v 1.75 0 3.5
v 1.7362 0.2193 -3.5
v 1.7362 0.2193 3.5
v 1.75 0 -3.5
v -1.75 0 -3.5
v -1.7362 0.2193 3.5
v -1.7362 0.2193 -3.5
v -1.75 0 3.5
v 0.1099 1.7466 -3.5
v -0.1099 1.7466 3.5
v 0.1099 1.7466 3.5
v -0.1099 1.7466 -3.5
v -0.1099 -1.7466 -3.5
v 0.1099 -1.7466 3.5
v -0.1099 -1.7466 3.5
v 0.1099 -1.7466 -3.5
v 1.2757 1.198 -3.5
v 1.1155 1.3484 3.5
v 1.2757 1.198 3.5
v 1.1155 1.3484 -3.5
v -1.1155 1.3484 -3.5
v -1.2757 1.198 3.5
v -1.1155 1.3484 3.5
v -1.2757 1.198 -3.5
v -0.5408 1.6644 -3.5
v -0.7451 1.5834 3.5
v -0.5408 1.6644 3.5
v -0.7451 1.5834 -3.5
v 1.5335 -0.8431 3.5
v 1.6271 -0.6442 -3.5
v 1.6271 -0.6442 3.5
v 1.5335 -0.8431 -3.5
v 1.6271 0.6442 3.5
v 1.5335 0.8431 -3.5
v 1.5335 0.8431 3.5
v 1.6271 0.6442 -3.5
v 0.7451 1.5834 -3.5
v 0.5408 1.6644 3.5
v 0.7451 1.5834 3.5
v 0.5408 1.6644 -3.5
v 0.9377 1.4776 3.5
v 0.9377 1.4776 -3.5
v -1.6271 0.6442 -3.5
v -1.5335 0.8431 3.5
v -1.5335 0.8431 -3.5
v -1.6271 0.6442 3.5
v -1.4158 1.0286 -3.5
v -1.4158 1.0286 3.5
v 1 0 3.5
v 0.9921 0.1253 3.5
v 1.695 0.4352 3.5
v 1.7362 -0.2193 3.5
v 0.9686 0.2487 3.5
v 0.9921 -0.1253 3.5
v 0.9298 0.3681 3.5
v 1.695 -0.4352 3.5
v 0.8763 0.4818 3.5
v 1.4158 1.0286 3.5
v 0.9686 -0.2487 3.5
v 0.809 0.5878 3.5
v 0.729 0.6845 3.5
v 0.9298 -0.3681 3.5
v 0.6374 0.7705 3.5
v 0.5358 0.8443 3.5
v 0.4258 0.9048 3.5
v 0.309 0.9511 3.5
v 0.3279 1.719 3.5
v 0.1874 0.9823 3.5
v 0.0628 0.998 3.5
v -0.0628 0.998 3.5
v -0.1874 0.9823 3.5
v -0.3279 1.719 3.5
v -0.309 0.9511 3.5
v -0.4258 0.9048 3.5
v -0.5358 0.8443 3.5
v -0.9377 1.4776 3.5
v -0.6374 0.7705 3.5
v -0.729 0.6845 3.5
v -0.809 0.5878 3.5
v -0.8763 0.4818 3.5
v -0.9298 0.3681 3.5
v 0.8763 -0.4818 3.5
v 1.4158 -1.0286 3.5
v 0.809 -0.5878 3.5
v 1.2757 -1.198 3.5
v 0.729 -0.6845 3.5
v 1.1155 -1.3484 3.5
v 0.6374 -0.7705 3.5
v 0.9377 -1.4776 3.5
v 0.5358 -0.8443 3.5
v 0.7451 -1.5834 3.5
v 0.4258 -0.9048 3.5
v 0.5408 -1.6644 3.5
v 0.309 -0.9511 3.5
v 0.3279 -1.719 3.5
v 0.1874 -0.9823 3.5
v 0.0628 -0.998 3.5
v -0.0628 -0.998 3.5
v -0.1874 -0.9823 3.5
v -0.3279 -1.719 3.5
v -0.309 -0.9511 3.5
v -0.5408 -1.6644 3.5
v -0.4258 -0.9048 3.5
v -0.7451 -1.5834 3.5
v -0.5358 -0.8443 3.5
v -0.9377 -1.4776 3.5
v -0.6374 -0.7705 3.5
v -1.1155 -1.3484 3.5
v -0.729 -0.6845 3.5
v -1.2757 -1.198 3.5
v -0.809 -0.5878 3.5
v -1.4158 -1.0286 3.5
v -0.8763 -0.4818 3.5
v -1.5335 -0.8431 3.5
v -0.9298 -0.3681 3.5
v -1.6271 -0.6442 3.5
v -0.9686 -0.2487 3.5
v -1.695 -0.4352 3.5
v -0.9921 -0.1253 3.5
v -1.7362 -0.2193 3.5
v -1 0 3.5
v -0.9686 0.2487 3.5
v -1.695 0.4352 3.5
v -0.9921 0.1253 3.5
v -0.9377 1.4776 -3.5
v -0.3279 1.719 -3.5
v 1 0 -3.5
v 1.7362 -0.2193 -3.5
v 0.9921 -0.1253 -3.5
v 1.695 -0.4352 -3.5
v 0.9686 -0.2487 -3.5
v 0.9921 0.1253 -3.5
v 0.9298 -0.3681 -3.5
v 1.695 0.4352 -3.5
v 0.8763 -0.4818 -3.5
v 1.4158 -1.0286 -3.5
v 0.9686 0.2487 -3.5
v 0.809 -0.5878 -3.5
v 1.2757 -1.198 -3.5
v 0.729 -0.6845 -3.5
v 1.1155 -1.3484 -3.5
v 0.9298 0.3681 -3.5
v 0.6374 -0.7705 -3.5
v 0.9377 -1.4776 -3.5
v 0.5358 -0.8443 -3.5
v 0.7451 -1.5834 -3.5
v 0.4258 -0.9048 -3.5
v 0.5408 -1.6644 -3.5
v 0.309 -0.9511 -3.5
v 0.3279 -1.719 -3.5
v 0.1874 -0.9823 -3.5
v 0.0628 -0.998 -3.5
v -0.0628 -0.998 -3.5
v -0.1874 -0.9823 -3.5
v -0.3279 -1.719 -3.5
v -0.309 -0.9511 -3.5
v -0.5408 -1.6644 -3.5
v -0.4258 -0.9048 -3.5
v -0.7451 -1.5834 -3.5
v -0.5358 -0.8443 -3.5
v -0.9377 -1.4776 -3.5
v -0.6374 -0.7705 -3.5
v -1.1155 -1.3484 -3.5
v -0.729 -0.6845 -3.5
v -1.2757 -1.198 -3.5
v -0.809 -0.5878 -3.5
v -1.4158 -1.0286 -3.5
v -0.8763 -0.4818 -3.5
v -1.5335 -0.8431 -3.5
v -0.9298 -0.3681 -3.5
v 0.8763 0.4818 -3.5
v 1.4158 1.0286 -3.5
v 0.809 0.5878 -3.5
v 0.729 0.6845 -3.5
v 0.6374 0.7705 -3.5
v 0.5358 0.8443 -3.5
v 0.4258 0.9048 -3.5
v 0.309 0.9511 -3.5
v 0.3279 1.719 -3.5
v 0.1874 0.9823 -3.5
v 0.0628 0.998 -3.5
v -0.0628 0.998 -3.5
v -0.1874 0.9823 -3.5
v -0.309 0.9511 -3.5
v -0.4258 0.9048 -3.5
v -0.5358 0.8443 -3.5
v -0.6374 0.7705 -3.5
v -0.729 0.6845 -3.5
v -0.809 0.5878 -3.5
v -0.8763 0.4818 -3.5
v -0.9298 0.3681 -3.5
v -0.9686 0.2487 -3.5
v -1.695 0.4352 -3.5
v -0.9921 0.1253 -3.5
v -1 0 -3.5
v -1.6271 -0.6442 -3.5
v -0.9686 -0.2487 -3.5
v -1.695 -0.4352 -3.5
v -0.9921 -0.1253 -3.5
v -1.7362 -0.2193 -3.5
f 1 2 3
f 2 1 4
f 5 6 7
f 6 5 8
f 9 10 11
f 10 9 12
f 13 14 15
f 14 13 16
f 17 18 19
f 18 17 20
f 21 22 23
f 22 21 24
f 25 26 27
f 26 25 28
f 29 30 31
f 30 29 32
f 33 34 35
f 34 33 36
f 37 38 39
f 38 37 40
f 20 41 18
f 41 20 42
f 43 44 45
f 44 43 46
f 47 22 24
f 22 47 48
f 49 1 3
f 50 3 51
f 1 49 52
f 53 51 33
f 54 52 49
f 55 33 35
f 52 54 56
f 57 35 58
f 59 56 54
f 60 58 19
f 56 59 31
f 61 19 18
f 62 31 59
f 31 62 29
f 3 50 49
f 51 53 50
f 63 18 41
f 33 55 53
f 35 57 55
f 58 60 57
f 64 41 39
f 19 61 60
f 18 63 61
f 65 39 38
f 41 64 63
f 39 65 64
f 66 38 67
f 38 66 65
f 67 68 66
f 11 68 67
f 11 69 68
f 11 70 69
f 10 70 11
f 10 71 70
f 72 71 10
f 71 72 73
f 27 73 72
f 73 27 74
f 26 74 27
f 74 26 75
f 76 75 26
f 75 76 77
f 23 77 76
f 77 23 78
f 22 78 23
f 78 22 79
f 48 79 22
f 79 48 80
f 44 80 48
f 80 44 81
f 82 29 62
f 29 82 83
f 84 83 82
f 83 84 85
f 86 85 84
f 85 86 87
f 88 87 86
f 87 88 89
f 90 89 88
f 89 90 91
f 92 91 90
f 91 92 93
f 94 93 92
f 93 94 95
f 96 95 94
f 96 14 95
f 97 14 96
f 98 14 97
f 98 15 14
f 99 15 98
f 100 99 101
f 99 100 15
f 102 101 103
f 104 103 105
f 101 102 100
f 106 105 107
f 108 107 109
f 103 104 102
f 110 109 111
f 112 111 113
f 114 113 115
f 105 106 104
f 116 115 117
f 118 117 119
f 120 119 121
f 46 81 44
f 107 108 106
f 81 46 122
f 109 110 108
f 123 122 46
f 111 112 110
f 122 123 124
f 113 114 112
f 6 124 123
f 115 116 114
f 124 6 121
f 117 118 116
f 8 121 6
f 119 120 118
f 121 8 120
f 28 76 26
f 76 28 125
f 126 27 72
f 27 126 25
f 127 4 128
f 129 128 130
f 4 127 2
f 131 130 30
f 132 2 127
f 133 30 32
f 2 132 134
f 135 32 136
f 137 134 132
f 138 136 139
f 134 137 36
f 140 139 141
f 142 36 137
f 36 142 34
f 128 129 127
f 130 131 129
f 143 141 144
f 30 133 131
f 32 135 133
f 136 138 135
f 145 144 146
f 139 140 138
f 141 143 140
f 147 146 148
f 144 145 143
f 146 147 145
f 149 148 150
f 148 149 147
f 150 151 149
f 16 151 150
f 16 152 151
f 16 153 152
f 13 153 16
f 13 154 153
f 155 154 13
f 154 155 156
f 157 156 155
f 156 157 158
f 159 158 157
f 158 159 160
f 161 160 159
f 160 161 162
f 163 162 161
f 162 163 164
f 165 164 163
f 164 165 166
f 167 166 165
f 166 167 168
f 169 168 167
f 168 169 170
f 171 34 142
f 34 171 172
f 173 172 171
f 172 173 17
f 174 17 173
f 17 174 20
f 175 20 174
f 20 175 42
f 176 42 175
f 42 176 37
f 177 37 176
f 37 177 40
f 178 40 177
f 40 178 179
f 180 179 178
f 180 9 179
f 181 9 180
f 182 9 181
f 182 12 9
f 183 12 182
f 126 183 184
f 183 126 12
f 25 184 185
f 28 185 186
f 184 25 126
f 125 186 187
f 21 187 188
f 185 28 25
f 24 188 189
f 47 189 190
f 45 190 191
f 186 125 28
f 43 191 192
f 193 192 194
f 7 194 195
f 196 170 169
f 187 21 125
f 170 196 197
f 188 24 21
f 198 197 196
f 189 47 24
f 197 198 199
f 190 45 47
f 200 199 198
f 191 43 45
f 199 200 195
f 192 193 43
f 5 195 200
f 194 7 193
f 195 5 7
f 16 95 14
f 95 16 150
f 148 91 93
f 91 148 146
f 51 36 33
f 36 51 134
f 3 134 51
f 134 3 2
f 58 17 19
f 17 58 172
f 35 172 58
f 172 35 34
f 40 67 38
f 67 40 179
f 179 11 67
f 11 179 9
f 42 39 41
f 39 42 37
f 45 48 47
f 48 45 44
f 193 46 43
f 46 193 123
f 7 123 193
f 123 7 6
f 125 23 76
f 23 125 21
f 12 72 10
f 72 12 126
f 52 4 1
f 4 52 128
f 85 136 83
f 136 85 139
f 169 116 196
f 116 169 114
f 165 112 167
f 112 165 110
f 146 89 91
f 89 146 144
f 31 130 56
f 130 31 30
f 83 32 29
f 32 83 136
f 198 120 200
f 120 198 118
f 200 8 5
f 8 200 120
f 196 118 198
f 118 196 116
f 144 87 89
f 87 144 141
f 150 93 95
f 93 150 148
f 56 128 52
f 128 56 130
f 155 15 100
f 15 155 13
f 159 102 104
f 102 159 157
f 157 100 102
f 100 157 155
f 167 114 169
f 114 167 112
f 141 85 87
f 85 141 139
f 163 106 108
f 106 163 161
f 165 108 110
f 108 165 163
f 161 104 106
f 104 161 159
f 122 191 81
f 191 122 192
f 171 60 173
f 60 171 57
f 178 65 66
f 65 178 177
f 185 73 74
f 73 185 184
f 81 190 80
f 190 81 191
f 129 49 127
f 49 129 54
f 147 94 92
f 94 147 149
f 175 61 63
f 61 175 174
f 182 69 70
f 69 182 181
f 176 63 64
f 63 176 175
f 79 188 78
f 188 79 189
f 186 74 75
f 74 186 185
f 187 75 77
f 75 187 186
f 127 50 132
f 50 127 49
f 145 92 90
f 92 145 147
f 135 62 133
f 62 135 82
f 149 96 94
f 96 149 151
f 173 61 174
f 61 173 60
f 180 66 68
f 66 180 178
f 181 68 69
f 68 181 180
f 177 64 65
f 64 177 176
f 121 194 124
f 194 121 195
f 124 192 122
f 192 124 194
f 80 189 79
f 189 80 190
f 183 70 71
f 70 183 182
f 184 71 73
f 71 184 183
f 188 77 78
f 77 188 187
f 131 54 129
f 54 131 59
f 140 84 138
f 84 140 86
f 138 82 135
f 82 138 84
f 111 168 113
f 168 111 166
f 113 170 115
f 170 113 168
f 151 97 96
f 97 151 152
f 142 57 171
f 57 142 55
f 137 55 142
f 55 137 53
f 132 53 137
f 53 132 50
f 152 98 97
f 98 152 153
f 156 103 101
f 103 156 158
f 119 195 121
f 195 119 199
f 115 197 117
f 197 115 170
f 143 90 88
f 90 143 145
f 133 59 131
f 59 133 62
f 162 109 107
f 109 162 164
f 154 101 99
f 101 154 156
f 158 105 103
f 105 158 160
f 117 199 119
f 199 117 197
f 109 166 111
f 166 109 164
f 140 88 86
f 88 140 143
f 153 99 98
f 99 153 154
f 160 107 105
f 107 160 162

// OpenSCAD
$fn = 50;


difference() {
	union() {
		translate(v = [0, 0, -3.5000000000]) {
			cylinder(h = 7, r = 1.7500000000);
		}
	}
	union() {
		translate(v = [0, 0, -100.0000000000]) {
			cylinder(h = 200, r = 1.0000000000);
		}
	}
}
